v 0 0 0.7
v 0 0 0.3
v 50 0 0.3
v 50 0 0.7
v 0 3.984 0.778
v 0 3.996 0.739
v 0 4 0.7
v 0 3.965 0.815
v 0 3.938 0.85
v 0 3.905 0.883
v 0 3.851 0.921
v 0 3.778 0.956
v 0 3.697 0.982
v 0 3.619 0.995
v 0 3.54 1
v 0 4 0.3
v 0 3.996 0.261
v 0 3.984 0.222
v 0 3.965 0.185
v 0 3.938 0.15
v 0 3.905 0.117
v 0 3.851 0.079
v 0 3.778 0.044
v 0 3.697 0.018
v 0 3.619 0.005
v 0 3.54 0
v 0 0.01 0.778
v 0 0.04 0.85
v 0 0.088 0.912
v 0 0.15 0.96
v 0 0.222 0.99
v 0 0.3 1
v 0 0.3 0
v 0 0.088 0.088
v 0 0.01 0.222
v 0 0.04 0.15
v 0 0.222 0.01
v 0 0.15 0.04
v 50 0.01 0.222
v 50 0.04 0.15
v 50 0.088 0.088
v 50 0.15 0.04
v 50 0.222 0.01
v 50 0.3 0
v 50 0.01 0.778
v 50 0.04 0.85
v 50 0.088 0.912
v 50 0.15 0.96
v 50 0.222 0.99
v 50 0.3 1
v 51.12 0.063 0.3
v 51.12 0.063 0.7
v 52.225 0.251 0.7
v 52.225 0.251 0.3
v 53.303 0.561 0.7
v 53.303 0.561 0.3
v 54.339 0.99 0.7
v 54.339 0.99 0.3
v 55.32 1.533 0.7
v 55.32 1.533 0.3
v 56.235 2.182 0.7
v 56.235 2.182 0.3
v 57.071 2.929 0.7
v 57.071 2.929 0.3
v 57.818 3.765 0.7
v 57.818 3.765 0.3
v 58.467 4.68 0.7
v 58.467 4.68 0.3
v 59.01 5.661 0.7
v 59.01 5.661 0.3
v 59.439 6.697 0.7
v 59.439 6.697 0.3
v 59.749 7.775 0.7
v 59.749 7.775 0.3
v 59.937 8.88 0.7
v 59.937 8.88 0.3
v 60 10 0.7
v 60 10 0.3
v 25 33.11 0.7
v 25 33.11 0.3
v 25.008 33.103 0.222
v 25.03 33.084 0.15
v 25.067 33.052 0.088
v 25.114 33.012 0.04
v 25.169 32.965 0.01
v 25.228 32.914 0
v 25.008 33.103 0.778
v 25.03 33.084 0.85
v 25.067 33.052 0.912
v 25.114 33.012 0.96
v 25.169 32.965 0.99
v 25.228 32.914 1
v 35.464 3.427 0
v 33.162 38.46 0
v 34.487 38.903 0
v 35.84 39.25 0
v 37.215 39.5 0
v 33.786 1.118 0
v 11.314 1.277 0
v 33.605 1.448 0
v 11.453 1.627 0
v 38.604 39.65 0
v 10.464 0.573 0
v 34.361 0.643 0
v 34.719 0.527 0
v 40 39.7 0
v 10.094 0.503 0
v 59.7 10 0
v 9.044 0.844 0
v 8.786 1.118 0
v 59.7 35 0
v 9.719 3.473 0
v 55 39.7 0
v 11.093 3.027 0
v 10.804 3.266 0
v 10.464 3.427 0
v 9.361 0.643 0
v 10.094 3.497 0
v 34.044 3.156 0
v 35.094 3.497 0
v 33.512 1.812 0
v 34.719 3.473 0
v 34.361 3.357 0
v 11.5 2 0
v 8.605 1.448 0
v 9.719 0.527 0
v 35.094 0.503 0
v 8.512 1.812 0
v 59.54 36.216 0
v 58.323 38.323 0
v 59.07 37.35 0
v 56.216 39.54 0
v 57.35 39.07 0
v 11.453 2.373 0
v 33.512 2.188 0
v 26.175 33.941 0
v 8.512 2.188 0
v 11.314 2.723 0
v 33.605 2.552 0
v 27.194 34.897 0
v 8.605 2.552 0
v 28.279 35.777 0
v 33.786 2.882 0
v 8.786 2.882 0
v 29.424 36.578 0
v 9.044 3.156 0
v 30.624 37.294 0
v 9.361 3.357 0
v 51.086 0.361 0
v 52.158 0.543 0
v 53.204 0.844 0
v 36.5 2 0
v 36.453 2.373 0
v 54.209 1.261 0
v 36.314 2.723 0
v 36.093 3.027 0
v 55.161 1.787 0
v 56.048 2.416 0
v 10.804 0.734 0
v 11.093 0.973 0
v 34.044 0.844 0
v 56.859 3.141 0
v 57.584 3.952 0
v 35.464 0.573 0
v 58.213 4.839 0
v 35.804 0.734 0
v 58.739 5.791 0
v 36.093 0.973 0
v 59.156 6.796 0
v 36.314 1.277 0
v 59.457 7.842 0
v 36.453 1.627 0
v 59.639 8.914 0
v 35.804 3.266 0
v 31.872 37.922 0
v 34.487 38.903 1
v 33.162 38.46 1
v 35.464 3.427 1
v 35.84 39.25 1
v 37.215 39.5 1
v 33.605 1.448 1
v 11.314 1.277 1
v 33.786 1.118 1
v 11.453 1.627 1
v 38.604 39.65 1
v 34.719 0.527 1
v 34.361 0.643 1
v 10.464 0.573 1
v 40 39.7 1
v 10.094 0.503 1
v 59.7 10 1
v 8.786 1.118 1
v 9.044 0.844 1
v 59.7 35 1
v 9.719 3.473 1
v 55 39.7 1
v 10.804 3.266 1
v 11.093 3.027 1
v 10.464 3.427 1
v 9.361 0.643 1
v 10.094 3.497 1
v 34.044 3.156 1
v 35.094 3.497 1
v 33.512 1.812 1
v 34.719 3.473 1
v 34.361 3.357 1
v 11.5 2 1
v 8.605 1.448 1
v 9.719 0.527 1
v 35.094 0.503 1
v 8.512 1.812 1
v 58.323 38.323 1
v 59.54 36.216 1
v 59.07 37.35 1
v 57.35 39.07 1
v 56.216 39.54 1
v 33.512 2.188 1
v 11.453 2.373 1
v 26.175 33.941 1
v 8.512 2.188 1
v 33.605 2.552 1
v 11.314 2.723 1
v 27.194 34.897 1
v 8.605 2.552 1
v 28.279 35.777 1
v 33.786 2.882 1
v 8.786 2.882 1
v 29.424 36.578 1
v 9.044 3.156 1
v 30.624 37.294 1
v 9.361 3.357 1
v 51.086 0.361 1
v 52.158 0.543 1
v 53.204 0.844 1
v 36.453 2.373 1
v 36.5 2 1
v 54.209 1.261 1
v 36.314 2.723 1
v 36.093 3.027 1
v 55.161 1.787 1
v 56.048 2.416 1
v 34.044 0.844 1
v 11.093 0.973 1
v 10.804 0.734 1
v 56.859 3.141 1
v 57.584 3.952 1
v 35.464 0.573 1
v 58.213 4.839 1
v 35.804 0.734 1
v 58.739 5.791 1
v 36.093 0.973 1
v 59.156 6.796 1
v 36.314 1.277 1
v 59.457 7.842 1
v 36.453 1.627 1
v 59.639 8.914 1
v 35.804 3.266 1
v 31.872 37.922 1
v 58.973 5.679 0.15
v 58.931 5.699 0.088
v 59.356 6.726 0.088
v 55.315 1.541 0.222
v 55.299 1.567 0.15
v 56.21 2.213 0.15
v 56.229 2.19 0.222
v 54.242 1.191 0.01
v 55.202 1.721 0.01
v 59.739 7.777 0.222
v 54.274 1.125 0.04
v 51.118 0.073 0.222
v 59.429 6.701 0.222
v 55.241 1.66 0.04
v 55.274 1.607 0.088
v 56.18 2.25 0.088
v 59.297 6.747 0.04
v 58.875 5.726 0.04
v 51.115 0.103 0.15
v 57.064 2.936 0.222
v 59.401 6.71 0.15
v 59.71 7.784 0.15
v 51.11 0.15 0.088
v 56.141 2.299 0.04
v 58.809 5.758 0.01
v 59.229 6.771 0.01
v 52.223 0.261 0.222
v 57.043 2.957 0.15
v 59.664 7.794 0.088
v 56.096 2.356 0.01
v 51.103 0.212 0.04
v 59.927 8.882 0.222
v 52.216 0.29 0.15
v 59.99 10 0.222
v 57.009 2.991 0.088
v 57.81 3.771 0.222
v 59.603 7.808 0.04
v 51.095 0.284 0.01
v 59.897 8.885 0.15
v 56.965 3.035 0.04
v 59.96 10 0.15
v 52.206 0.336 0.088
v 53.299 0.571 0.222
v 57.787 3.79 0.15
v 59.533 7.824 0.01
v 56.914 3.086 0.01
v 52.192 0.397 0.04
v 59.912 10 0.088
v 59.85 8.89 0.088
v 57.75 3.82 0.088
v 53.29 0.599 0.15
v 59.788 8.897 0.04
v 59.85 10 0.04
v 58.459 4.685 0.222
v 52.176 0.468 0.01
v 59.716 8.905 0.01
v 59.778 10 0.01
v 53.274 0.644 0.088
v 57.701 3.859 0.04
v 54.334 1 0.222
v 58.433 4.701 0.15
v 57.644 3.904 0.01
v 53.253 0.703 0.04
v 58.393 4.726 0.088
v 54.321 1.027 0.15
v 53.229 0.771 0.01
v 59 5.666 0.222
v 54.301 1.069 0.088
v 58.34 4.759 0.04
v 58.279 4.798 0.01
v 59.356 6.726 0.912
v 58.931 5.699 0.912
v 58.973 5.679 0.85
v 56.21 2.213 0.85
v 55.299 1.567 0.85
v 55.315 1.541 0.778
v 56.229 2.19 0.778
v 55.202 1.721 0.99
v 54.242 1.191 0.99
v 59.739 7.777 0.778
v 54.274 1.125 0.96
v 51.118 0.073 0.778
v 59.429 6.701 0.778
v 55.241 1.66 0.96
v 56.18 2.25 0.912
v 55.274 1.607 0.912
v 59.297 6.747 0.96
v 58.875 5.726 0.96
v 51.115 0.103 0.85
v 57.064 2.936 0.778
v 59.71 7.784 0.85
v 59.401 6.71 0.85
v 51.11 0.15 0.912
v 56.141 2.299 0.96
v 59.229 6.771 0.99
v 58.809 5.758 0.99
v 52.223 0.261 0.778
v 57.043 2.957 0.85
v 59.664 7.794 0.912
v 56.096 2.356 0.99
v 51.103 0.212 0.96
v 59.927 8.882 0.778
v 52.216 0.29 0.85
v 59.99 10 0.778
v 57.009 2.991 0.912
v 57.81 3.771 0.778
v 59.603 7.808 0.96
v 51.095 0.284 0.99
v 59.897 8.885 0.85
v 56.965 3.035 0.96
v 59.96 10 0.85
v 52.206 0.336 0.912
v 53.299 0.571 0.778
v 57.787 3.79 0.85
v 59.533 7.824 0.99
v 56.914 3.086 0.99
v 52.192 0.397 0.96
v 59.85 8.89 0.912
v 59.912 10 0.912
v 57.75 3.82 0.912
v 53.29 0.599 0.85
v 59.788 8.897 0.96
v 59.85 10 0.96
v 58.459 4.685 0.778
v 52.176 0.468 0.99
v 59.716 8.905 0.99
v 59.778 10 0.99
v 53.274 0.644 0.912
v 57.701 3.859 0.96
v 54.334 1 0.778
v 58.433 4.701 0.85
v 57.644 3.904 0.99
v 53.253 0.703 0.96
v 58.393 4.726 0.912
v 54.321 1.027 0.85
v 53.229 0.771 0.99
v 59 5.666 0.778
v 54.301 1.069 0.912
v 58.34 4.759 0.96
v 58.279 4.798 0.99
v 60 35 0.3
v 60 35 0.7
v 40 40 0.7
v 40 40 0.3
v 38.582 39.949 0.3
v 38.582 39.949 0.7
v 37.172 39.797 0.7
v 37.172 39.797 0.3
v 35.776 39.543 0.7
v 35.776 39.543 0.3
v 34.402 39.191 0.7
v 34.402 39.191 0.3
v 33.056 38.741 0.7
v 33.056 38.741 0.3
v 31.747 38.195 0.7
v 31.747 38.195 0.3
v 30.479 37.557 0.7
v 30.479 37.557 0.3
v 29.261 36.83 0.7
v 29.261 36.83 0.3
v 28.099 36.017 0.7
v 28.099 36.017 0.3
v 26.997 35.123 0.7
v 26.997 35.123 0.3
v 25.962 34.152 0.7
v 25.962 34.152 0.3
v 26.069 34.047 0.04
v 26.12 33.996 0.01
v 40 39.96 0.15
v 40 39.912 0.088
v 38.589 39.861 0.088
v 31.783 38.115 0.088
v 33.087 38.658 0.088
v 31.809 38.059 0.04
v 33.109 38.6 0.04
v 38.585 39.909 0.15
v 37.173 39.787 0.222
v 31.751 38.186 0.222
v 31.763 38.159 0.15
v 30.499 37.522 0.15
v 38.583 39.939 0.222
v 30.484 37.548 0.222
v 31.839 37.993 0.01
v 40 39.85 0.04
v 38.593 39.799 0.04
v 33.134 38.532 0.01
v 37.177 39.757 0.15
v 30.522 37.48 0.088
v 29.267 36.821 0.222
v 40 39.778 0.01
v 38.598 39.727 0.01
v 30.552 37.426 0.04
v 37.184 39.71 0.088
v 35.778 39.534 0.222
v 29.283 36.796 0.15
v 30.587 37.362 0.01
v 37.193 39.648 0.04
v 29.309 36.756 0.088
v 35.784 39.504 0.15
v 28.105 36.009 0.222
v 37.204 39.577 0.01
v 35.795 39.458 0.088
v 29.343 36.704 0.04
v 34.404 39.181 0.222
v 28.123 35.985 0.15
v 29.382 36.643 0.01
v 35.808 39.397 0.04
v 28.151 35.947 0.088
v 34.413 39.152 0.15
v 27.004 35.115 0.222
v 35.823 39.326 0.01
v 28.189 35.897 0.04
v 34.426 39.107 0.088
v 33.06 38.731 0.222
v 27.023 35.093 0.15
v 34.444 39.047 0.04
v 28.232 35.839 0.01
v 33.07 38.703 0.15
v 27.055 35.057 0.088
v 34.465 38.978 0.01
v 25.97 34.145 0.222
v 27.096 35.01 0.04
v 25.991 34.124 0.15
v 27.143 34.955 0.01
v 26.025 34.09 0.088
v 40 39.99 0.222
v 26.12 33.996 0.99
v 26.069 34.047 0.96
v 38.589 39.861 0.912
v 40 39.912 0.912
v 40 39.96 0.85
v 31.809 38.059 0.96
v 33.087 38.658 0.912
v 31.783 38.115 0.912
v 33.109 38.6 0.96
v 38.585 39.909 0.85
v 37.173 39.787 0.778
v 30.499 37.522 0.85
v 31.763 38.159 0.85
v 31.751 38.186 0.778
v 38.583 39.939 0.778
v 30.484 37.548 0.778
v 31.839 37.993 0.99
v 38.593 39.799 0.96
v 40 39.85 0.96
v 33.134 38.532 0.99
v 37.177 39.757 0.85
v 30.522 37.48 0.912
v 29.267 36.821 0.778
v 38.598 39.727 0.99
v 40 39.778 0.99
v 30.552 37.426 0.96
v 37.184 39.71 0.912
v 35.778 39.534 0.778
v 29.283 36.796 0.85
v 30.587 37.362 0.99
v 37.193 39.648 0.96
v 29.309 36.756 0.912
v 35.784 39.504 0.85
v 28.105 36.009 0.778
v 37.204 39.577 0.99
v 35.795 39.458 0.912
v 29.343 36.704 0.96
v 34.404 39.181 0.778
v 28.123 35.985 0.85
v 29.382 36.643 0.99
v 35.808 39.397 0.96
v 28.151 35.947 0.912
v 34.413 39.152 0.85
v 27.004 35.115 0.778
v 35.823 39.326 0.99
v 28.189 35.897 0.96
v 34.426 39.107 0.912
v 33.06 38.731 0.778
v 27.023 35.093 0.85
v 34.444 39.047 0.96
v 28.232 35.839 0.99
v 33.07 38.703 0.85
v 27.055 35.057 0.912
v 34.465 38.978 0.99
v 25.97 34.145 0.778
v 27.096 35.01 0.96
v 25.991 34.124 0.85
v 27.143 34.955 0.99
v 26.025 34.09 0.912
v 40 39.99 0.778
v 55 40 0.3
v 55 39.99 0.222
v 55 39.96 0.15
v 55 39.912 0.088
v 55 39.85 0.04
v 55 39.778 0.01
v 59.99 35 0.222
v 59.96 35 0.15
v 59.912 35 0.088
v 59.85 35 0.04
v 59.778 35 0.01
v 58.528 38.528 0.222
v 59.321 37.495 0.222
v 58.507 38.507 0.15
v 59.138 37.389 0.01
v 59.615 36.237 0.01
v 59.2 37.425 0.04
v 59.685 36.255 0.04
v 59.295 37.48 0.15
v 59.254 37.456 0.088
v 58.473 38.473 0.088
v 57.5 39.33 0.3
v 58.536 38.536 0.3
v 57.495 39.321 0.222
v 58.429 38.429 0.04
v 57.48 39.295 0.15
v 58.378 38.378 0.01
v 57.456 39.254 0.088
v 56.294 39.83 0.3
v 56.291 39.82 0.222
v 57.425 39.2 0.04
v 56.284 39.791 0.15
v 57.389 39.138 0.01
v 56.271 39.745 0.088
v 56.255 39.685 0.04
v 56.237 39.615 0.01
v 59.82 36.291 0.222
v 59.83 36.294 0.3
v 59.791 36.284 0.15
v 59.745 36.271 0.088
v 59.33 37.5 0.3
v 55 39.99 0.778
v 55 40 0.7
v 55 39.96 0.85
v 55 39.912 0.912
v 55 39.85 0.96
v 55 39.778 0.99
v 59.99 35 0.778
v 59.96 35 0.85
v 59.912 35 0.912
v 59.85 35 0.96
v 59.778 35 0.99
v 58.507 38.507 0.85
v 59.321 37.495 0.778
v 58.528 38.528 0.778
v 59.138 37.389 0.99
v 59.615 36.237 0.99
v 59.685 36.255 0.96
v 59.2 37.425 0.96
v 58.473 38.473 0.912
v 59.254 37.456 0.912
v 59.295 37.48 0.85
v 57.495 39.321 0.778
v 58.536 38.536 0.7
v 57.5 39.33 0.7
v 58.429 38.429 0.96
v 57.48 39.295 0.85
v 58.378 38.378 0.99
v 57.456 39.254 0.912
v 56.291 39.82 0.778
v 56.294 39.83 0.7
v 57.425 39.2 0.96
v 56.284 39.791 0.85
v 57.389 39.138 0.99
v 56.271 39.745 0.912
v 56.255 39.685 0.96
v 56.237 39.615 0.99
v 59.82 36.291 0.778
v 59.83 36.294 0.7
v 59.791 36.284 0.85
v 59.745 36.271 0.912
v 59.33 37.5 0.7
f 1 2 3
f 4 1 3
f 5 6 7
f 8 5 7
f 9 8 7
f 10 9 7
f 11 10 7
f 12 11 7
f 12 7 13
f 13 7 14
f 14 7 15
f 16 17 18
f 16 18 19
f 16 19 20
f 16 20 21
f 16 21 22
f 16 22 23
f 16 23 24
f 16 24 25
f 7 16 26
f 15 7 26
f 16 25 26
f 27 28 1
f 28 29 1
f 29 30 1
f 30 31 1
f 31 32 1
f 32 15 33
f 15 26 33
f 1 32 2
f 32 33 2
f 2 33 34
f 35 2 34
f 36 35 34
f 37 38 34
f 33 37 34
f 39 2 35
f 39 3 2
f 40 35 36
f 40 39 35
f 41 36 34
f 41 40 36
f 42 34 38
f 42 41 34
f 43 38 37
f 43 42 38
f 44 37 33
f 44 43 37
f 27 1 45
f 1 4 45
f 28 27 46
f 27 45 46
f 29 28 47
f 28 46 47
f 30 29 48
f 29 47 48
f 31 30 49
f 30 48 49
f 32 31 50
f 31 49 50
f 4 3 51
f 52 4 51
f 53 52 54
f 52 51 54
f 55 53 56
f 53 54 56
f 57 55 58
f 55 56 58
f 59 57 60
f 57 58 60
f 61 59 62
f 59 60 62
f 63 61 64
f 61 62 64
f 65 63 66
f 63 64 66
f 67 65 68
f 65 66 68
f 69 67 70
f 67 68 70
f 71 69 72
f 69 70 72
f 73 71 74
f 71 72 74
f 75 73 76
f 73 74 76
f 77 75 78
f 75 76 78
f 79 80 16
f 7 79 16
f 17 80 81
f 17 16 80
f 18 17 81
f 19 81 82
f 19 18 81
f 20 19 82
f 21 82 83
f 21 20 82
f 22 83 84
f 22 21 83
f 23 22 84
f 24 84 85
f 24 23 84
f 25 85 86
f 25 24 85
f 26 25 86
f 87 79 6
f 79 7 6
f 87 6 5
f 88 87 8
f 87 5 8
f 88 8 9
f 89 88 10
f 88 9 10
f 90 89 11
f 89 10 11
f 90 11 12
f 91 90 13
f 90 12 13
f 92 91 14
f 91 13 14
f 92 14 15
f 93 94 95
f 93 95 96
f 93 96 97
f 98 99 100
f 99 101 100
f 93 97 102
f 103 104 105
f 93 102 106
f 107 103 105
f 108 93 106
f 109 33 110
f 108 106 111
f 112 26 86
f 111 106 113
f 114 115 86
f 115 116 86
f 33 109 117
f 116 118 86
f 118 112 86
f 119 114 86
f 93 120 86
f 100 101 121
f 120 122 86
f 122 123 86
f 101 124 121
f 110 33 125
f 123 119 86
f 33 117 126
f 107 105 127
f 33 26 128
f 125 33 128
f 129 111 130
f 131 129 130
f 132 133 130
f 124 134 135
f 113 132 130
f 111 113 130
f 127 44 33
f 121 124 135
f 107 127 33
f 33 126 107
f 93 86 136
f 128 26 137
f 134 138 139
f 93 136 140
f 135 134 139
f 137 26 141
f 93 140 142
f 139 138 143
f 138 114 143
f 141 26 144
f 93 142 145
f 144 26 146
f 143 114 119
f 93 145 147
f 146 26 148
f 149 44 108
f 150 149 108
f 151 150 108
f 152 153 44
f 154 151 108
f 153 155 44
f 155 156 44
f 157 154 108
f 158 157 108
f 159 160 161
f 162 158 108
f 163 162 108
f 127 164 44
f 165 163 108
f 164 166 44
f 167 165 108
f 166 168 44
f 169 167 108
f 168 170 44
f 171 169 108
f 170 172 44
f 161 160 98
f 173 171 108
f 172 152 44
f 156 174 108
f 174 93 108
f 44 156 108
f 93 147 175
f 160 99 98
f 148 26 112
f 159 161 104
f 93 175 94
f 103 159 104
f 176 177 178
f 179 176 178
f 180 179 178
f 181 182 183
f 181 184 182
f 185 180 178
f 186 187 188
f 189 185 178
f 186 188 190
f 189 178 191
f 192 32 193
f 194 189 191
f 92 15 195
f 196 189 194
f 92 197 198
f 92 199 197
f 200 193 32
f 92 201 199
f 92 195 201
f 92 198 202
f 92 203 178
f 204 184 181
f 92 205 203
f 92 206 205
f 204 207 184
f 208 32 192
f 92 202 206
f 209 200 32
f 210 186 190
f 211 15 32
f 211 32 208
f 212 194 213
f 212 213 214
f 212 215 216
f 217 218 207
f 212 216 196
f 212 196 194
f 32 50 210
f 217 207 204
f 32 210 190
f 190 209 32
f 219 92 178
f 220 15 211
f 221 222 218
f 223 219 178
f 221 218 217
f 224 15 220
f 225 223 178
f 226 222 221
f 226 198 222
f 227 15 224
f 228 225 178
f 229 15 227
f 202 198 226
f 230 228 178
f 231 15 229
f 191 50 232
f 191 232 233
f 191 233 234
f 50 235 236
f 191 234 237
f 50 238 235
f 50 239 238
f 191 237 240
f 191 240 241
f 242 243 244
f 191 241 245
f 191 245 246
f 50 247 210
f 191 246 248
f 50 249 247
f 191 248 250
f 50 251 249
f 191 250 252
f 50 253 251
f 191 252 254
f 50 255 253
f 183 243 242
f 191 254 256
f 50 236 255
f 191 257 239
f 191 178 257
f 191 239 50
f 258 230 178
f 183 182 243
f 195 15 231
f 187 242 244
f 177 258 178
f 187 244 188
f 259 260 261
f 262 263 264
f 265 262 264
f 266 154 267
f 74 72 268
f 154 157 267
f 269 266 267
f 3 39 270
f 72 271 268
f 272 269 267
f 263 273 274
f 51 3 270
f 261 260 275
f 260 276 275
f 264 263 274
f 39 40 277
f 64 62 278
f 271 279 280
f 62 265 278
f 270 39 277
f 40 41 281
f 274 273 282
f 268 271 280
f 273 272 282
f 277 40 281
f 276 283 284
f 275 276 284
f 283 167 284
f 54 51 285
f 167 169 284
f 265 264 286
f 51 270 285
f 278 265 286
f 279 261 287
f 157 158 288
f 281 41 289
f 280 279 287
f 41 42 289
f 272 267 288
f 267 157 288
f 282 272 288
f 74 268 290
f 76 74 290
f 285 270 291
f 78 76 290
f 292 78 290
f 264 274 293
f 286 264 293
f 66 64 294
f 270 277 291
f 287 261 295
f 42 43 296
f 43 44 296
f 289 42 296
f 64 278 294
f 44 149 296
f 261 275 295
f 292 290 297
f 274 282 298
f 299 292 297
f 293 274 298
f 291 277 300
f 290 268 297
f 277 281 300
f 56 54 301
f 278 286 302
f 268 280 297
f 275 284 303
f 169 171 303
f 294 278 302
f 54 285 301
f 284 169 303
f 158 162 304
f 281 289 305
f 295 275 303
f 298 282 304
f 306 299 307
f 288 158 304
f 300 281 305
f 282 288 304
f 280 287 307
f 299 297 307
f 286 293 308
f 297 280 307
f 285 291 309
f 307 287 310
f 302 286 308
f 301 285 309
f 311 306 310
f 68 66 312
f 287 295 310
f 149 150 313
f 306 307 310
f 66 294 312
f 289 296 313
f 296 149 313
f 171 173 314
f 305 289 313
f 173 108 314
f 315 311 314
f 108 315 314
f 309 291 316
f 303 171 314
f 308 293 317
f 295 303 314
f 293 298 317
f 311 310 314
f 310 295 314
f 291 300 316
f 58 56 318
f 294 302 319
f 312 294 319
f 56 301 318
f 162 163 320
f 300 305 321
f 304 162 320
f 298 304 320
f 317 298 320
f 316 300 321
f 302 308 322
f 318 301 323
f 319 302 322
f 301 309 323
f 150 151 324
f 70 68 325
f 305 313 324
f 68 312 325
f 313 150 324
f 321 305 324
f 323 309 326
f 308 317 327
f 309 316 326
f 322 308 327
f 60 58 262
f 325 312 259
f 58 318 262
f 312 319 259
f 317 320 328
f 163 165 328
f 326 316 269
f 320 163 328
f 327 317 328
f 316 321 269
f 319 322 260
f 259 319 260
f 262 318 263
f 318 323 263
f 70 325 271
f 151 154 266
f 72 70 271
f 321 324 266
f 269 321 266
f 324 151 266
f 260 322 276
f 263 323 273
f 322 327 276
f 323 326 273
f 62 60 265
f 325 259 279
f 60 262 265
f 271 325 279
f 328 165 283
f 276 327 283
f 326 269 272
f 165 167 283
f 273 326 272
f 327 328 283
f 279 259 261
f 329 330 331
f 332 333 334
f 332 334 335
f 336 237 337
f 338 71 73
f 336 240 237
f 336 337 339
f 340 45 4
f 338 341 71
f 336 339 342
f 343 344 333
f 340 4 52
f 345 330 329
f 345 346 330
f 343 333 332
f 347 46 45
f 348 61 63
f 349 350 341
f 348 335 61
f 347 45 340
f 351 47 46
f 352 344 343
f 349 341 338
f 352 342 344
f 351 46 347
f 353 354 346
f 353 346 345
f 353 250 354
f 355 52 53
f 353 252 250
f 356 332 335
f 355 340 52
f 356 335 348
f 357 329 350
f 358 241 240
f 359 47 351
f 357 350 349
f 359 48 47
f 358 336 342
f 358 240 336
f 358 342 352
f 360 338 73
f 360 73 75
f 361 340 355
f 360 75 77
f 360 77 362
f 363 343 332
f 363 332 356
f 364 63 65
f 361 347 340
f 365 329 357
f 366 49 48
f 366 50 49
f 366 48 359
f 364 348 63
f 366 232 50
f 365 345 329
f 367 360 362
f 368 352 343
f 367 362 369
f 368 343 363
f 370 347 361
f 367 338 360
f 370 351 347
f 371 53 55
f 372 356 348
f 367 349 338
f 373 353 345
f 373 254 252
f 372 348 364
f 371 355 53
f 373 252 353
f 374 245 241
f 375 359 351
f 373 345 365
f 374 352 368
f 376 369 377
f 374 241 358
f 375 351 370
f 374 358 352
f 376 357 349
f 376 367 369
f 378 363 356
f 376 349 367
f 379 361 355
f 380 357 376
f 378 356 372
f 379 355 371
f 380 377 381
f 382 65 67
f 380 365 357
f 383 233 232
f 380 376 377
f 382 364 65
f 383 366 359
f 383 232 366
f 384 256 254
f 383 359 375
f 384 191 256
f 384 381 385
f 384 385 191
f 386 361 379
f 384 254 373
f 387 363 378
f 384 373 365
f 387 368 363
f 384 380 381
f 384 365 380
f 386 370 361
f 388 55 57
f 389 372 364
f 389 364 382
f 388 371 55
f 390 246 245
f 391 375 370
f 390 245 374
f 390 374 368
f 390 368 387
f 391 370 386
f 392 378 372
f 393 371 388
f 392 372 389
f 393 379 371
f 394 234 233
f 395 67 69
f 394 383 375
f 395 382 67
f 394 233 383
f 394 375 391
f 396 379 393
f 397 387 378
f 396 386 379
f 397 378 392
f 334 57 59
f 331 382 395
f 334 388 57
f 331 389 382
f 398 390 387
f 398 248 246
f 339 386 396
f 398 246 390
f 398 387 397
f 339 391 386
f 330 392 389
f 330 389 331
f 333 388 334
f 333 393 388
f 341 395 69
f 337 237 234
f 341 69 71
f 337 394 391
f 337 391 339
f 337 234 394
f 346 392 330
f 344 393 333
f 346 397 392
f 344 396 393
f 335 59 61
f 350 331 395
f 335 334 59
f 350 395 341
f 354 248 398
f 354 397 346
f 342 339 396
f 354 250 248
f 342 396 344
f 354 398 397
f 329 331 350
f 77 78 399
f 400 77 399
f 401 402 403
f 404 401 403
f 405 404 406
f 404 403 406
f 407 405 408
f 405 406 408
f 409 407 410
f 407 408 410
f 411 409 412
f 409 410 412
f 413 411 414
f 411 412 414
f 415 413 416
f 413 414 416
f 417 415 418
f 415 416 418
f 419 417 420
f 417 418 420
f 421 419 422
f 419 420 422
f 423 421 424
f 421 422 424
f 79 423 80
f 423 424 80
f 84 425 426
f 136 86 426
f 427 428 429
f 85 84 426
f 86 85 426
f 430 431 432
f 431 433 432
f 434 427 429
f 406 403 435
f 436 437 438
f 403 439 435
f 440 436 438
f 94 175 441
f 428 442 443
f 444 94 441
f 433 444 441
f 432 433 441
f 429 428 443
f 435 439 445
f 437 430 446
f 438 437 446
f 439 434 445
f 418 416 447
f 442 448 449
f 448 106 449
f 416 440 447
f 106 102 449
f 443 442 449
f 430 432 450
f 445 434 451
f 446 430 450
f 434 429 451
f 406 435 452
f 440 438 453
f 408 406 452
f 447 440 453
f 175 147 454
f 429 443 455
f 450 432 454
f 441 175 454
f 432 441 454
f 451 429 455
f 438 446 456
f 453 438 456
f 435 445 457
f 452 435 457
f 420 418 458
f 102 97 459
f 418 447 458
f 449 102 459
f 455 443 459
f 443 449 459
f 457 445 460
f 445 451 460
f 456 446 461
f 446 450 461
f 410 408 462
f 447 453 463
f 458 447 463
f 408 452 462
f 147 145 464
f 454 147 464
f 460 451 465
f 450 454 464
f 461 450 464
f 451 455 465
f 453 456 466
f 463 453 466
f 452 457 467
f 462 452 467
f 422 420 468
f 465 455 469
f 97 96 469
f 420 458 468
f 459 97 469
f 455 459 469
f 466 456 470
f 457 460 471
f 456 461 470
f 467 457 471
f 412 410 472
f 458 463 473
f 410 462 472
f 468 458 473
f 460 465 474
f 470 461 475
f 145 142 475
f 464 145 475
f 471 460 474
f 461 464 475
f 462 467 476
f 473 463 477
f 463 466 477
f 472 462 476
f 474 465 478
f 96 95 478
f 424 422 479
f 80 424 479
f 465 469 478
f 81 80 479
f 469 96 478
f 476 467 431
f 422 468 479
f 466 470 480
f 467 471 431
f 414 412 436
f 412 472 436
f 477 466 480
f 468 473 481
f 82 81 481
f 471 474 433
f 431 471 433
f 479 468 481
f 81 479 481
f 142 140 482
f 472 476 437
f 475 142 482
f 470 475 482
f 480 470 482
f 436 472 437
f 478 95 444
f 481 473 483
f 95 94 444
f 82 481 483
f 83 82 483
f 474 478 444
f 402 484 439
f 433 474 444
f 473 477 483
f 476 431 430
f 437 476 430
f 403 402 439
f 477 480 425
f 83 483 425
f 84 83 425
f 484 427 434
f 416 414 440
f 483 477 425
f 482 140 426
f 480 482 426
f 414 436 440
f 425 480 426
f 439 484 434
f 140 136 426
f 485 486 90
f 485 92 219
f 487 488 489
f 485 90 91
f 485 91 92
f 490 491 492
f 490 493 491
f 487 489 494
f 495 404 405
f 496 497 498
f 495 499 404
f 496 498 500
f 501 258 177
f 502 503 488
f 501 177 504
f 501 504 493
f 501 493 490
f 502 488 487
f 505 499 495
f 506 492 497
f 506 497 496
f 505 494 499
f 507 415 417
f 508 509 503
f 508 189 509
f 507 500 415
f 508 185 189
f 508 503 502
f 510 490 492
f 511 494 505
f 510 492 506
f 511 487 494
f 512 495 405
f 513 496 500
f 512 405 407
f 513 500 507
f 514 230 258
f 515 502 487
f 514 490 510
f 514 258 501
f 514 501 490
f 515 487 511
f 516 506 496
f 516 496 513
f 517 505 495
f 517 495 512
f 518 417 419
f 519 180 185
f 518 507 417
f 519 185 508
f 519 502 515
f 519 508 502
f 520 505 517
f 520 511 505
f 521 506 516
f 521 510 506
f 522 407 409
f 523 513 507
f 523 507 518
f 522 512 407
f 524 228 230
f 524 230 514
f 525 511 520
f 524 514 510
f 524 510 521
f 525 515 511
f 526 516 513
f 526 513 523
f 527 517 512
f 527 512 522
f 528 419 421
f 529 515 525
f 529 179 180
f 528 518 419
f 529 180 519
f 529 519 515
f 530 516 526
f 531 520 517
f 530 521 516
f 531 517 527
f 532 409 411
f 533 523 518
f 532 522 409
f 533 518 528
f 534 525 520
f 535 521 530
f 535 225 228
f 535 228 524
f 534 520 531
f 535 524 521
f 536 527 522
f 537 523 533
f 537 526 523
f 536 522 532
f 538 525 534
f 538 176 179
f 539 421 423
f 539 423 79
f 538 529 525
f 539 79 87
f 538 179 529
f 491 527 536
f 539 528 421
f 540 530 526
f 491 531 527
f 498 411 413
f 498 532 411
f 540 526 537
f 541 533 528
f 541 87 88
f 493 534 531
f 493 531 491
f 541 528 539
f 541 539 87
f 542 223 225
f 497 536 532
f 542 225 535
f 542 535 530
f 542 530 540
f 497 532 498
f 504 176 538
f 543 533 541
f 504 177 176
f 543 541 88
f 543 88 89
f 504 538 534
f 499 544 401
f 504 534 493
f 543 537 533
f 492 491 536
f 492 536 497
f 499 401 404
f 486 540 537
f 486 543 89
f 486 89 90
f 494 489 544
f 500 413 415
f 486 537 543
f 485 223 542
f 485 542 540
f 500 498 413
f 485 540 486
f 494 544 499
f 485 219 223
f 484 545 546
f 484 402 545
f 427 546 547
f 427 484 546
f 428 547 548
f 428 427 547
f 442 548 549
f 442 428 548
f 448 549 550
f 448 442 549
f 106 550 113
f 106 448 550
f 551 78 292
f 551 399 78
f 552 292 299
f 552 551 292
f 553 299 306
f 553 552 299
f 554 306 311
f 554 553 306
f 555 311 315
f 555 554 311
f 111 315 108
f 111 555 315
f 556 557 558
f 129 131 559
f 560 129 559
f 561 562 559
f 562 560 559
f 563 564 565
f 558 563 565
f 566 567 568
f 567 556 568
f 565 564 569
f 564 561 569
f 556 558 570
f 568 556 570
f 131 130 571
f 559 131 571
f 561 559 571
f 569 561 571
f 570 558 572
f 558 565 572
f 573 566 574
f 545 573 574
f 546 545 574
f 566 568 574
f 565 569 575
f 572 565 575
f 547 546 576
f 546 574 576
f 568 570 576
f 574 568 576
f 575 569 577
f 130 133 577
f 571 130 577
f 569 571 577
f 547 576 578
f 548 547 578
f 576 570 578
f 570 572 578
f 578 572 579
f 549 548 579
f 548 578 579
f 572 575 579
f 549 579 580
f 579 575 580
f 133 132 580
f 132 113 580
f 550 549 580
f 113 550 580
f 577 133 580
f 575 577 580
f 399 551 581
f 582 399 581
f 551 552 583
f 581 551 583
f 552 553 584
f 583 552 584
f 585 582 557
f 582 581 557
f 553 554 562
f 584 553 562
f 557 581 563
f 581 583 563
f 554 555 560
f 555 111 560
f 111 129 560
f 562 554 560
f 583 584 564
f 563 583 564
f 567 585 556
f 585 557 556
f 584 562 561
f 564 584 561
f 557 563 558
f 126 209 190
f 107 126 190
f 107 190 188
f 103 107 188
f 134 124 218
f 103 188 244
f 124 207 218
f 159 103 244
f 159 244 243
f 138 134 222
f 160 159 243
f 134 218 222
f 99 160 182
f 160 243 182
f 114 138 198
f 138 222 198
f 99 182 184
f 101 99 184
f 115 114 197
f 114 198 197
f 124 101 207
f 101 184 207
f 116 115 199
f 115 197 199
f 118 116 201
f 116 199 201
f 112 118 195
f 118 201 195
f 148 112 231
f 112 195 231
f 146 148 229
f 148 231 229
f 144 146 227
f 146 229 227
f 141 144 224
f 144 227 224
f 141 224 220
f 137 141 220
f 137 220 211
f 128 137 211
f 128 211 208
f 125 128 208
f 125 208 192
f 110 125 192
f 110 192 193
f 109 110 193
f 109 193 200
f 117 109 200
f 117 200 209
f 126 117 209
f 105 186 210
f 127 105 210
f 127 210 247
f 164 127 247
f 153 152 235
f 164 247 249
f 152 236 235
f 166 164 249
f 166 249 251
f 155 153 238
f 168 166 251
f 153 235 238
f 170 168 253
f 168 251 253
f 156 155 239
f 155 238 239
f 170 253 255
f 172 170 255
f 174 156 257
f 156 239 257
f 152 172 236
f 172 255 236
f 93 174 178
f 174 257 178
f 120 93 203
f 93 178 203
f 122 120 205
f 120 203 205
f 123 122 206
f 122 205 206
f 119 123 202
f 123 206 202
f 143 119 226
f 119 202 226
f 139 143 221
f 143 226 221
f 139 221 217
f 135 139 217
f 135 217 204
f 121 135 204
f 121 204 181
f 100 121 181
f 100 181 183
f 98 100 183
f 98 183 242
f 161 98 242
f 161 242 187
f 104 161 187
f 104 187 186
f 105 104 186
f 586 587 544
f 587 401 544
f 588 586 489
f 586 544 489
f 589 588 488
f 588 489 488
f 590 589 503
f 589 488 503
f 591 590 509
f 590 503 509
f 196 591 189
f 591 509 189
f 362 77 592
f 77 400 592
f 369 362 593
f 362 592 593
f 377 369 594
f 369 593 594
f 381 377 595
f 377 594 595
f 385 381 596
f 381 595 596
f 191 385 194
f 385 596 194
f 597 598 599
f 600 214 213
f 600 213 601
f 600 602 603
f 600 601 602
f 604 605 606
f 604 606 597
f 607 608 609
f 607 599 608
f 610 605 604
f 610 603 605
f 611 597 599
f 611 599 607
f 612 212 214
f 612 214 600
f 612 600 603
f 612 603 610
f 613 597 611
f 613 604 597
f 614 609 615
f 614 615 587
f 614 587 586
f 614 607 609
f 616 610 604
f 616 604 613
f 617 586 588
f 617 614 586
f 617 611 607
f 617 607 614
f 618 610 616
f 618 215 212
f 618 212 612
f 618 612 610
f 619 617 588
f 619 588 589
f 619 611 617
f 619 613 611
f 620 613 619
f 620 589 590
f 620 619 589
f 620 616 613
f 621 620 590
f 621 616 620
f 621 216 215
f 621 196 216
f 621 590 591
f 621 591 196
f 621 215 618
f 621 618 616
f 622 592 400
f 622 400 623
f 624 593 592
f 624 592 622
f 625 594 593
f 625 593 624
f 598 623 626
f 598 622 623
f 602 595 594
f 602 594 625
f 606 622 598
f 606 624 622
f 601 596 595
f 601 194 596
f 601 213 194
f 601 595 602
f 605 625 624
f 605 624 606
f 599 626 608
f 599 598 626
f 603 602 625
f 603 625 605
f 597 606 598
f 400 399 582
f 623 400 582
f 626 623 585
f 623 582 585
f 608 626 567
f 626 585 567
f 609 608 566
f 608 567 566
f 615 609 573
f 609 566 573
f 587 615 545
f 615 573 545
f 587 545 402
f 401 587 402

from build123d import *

# Parameters (mm, degrees)
PAD_DEPTH    = 1
FILLET_R     = 0.3
SKETCH001_R  = 1.5
POCKET_DEPTH = 1.001


with BuildPart() as part:
    # Sketch → Pad (new body)
    with BuildSketch(Plane.XY):
        with BuildLine():
            Line((0, 0), (50, 0))
            ThreePointArc((50, 0), (57.071068, 2.928932), (60, 10))
            Line((60, 10), (60, 35))
            ThreePointArc((60, 35), (58.535534, 38.535534), (55, 40))
            Line((55, 40), (40, 40))
            ThreePointArc((40, 40), (31.746583, 38.195054), (25, 33.109746))
            Line((25, 33.109746), (0, 4))
            Line((0, 4), (0, 0))
        make_face()
    extrude(amount=PAD_DEPTH)

    # Fillet
    fillet_edges = [part.edges().sort_by_distance(p)[0] for p in [
        (31.746583, 38.195054, 1),
        (31.746583, 38.195054, 0),
        (47.5, 40, 1),
        (47.5, 40, 0),
        (12.5, 18.554873, 1),
        (12.5, 18.554873, 0),
    ]]
    fillet(fillet_edges, radius=FILLET_R)

    # Sketch001 → Pocket (cut, through all)
    with BuildSketch(Plane.XY.offset(1)):
        with Locations((10, 2)):
            Circle(SKETCH001_R)
        with Locations((35, 2)):
            Circle(SKETCH001_R)
    extrude(amount=-POCKET_DEPTH, mode=Mode.SUBTRACT)


solid = part.part
